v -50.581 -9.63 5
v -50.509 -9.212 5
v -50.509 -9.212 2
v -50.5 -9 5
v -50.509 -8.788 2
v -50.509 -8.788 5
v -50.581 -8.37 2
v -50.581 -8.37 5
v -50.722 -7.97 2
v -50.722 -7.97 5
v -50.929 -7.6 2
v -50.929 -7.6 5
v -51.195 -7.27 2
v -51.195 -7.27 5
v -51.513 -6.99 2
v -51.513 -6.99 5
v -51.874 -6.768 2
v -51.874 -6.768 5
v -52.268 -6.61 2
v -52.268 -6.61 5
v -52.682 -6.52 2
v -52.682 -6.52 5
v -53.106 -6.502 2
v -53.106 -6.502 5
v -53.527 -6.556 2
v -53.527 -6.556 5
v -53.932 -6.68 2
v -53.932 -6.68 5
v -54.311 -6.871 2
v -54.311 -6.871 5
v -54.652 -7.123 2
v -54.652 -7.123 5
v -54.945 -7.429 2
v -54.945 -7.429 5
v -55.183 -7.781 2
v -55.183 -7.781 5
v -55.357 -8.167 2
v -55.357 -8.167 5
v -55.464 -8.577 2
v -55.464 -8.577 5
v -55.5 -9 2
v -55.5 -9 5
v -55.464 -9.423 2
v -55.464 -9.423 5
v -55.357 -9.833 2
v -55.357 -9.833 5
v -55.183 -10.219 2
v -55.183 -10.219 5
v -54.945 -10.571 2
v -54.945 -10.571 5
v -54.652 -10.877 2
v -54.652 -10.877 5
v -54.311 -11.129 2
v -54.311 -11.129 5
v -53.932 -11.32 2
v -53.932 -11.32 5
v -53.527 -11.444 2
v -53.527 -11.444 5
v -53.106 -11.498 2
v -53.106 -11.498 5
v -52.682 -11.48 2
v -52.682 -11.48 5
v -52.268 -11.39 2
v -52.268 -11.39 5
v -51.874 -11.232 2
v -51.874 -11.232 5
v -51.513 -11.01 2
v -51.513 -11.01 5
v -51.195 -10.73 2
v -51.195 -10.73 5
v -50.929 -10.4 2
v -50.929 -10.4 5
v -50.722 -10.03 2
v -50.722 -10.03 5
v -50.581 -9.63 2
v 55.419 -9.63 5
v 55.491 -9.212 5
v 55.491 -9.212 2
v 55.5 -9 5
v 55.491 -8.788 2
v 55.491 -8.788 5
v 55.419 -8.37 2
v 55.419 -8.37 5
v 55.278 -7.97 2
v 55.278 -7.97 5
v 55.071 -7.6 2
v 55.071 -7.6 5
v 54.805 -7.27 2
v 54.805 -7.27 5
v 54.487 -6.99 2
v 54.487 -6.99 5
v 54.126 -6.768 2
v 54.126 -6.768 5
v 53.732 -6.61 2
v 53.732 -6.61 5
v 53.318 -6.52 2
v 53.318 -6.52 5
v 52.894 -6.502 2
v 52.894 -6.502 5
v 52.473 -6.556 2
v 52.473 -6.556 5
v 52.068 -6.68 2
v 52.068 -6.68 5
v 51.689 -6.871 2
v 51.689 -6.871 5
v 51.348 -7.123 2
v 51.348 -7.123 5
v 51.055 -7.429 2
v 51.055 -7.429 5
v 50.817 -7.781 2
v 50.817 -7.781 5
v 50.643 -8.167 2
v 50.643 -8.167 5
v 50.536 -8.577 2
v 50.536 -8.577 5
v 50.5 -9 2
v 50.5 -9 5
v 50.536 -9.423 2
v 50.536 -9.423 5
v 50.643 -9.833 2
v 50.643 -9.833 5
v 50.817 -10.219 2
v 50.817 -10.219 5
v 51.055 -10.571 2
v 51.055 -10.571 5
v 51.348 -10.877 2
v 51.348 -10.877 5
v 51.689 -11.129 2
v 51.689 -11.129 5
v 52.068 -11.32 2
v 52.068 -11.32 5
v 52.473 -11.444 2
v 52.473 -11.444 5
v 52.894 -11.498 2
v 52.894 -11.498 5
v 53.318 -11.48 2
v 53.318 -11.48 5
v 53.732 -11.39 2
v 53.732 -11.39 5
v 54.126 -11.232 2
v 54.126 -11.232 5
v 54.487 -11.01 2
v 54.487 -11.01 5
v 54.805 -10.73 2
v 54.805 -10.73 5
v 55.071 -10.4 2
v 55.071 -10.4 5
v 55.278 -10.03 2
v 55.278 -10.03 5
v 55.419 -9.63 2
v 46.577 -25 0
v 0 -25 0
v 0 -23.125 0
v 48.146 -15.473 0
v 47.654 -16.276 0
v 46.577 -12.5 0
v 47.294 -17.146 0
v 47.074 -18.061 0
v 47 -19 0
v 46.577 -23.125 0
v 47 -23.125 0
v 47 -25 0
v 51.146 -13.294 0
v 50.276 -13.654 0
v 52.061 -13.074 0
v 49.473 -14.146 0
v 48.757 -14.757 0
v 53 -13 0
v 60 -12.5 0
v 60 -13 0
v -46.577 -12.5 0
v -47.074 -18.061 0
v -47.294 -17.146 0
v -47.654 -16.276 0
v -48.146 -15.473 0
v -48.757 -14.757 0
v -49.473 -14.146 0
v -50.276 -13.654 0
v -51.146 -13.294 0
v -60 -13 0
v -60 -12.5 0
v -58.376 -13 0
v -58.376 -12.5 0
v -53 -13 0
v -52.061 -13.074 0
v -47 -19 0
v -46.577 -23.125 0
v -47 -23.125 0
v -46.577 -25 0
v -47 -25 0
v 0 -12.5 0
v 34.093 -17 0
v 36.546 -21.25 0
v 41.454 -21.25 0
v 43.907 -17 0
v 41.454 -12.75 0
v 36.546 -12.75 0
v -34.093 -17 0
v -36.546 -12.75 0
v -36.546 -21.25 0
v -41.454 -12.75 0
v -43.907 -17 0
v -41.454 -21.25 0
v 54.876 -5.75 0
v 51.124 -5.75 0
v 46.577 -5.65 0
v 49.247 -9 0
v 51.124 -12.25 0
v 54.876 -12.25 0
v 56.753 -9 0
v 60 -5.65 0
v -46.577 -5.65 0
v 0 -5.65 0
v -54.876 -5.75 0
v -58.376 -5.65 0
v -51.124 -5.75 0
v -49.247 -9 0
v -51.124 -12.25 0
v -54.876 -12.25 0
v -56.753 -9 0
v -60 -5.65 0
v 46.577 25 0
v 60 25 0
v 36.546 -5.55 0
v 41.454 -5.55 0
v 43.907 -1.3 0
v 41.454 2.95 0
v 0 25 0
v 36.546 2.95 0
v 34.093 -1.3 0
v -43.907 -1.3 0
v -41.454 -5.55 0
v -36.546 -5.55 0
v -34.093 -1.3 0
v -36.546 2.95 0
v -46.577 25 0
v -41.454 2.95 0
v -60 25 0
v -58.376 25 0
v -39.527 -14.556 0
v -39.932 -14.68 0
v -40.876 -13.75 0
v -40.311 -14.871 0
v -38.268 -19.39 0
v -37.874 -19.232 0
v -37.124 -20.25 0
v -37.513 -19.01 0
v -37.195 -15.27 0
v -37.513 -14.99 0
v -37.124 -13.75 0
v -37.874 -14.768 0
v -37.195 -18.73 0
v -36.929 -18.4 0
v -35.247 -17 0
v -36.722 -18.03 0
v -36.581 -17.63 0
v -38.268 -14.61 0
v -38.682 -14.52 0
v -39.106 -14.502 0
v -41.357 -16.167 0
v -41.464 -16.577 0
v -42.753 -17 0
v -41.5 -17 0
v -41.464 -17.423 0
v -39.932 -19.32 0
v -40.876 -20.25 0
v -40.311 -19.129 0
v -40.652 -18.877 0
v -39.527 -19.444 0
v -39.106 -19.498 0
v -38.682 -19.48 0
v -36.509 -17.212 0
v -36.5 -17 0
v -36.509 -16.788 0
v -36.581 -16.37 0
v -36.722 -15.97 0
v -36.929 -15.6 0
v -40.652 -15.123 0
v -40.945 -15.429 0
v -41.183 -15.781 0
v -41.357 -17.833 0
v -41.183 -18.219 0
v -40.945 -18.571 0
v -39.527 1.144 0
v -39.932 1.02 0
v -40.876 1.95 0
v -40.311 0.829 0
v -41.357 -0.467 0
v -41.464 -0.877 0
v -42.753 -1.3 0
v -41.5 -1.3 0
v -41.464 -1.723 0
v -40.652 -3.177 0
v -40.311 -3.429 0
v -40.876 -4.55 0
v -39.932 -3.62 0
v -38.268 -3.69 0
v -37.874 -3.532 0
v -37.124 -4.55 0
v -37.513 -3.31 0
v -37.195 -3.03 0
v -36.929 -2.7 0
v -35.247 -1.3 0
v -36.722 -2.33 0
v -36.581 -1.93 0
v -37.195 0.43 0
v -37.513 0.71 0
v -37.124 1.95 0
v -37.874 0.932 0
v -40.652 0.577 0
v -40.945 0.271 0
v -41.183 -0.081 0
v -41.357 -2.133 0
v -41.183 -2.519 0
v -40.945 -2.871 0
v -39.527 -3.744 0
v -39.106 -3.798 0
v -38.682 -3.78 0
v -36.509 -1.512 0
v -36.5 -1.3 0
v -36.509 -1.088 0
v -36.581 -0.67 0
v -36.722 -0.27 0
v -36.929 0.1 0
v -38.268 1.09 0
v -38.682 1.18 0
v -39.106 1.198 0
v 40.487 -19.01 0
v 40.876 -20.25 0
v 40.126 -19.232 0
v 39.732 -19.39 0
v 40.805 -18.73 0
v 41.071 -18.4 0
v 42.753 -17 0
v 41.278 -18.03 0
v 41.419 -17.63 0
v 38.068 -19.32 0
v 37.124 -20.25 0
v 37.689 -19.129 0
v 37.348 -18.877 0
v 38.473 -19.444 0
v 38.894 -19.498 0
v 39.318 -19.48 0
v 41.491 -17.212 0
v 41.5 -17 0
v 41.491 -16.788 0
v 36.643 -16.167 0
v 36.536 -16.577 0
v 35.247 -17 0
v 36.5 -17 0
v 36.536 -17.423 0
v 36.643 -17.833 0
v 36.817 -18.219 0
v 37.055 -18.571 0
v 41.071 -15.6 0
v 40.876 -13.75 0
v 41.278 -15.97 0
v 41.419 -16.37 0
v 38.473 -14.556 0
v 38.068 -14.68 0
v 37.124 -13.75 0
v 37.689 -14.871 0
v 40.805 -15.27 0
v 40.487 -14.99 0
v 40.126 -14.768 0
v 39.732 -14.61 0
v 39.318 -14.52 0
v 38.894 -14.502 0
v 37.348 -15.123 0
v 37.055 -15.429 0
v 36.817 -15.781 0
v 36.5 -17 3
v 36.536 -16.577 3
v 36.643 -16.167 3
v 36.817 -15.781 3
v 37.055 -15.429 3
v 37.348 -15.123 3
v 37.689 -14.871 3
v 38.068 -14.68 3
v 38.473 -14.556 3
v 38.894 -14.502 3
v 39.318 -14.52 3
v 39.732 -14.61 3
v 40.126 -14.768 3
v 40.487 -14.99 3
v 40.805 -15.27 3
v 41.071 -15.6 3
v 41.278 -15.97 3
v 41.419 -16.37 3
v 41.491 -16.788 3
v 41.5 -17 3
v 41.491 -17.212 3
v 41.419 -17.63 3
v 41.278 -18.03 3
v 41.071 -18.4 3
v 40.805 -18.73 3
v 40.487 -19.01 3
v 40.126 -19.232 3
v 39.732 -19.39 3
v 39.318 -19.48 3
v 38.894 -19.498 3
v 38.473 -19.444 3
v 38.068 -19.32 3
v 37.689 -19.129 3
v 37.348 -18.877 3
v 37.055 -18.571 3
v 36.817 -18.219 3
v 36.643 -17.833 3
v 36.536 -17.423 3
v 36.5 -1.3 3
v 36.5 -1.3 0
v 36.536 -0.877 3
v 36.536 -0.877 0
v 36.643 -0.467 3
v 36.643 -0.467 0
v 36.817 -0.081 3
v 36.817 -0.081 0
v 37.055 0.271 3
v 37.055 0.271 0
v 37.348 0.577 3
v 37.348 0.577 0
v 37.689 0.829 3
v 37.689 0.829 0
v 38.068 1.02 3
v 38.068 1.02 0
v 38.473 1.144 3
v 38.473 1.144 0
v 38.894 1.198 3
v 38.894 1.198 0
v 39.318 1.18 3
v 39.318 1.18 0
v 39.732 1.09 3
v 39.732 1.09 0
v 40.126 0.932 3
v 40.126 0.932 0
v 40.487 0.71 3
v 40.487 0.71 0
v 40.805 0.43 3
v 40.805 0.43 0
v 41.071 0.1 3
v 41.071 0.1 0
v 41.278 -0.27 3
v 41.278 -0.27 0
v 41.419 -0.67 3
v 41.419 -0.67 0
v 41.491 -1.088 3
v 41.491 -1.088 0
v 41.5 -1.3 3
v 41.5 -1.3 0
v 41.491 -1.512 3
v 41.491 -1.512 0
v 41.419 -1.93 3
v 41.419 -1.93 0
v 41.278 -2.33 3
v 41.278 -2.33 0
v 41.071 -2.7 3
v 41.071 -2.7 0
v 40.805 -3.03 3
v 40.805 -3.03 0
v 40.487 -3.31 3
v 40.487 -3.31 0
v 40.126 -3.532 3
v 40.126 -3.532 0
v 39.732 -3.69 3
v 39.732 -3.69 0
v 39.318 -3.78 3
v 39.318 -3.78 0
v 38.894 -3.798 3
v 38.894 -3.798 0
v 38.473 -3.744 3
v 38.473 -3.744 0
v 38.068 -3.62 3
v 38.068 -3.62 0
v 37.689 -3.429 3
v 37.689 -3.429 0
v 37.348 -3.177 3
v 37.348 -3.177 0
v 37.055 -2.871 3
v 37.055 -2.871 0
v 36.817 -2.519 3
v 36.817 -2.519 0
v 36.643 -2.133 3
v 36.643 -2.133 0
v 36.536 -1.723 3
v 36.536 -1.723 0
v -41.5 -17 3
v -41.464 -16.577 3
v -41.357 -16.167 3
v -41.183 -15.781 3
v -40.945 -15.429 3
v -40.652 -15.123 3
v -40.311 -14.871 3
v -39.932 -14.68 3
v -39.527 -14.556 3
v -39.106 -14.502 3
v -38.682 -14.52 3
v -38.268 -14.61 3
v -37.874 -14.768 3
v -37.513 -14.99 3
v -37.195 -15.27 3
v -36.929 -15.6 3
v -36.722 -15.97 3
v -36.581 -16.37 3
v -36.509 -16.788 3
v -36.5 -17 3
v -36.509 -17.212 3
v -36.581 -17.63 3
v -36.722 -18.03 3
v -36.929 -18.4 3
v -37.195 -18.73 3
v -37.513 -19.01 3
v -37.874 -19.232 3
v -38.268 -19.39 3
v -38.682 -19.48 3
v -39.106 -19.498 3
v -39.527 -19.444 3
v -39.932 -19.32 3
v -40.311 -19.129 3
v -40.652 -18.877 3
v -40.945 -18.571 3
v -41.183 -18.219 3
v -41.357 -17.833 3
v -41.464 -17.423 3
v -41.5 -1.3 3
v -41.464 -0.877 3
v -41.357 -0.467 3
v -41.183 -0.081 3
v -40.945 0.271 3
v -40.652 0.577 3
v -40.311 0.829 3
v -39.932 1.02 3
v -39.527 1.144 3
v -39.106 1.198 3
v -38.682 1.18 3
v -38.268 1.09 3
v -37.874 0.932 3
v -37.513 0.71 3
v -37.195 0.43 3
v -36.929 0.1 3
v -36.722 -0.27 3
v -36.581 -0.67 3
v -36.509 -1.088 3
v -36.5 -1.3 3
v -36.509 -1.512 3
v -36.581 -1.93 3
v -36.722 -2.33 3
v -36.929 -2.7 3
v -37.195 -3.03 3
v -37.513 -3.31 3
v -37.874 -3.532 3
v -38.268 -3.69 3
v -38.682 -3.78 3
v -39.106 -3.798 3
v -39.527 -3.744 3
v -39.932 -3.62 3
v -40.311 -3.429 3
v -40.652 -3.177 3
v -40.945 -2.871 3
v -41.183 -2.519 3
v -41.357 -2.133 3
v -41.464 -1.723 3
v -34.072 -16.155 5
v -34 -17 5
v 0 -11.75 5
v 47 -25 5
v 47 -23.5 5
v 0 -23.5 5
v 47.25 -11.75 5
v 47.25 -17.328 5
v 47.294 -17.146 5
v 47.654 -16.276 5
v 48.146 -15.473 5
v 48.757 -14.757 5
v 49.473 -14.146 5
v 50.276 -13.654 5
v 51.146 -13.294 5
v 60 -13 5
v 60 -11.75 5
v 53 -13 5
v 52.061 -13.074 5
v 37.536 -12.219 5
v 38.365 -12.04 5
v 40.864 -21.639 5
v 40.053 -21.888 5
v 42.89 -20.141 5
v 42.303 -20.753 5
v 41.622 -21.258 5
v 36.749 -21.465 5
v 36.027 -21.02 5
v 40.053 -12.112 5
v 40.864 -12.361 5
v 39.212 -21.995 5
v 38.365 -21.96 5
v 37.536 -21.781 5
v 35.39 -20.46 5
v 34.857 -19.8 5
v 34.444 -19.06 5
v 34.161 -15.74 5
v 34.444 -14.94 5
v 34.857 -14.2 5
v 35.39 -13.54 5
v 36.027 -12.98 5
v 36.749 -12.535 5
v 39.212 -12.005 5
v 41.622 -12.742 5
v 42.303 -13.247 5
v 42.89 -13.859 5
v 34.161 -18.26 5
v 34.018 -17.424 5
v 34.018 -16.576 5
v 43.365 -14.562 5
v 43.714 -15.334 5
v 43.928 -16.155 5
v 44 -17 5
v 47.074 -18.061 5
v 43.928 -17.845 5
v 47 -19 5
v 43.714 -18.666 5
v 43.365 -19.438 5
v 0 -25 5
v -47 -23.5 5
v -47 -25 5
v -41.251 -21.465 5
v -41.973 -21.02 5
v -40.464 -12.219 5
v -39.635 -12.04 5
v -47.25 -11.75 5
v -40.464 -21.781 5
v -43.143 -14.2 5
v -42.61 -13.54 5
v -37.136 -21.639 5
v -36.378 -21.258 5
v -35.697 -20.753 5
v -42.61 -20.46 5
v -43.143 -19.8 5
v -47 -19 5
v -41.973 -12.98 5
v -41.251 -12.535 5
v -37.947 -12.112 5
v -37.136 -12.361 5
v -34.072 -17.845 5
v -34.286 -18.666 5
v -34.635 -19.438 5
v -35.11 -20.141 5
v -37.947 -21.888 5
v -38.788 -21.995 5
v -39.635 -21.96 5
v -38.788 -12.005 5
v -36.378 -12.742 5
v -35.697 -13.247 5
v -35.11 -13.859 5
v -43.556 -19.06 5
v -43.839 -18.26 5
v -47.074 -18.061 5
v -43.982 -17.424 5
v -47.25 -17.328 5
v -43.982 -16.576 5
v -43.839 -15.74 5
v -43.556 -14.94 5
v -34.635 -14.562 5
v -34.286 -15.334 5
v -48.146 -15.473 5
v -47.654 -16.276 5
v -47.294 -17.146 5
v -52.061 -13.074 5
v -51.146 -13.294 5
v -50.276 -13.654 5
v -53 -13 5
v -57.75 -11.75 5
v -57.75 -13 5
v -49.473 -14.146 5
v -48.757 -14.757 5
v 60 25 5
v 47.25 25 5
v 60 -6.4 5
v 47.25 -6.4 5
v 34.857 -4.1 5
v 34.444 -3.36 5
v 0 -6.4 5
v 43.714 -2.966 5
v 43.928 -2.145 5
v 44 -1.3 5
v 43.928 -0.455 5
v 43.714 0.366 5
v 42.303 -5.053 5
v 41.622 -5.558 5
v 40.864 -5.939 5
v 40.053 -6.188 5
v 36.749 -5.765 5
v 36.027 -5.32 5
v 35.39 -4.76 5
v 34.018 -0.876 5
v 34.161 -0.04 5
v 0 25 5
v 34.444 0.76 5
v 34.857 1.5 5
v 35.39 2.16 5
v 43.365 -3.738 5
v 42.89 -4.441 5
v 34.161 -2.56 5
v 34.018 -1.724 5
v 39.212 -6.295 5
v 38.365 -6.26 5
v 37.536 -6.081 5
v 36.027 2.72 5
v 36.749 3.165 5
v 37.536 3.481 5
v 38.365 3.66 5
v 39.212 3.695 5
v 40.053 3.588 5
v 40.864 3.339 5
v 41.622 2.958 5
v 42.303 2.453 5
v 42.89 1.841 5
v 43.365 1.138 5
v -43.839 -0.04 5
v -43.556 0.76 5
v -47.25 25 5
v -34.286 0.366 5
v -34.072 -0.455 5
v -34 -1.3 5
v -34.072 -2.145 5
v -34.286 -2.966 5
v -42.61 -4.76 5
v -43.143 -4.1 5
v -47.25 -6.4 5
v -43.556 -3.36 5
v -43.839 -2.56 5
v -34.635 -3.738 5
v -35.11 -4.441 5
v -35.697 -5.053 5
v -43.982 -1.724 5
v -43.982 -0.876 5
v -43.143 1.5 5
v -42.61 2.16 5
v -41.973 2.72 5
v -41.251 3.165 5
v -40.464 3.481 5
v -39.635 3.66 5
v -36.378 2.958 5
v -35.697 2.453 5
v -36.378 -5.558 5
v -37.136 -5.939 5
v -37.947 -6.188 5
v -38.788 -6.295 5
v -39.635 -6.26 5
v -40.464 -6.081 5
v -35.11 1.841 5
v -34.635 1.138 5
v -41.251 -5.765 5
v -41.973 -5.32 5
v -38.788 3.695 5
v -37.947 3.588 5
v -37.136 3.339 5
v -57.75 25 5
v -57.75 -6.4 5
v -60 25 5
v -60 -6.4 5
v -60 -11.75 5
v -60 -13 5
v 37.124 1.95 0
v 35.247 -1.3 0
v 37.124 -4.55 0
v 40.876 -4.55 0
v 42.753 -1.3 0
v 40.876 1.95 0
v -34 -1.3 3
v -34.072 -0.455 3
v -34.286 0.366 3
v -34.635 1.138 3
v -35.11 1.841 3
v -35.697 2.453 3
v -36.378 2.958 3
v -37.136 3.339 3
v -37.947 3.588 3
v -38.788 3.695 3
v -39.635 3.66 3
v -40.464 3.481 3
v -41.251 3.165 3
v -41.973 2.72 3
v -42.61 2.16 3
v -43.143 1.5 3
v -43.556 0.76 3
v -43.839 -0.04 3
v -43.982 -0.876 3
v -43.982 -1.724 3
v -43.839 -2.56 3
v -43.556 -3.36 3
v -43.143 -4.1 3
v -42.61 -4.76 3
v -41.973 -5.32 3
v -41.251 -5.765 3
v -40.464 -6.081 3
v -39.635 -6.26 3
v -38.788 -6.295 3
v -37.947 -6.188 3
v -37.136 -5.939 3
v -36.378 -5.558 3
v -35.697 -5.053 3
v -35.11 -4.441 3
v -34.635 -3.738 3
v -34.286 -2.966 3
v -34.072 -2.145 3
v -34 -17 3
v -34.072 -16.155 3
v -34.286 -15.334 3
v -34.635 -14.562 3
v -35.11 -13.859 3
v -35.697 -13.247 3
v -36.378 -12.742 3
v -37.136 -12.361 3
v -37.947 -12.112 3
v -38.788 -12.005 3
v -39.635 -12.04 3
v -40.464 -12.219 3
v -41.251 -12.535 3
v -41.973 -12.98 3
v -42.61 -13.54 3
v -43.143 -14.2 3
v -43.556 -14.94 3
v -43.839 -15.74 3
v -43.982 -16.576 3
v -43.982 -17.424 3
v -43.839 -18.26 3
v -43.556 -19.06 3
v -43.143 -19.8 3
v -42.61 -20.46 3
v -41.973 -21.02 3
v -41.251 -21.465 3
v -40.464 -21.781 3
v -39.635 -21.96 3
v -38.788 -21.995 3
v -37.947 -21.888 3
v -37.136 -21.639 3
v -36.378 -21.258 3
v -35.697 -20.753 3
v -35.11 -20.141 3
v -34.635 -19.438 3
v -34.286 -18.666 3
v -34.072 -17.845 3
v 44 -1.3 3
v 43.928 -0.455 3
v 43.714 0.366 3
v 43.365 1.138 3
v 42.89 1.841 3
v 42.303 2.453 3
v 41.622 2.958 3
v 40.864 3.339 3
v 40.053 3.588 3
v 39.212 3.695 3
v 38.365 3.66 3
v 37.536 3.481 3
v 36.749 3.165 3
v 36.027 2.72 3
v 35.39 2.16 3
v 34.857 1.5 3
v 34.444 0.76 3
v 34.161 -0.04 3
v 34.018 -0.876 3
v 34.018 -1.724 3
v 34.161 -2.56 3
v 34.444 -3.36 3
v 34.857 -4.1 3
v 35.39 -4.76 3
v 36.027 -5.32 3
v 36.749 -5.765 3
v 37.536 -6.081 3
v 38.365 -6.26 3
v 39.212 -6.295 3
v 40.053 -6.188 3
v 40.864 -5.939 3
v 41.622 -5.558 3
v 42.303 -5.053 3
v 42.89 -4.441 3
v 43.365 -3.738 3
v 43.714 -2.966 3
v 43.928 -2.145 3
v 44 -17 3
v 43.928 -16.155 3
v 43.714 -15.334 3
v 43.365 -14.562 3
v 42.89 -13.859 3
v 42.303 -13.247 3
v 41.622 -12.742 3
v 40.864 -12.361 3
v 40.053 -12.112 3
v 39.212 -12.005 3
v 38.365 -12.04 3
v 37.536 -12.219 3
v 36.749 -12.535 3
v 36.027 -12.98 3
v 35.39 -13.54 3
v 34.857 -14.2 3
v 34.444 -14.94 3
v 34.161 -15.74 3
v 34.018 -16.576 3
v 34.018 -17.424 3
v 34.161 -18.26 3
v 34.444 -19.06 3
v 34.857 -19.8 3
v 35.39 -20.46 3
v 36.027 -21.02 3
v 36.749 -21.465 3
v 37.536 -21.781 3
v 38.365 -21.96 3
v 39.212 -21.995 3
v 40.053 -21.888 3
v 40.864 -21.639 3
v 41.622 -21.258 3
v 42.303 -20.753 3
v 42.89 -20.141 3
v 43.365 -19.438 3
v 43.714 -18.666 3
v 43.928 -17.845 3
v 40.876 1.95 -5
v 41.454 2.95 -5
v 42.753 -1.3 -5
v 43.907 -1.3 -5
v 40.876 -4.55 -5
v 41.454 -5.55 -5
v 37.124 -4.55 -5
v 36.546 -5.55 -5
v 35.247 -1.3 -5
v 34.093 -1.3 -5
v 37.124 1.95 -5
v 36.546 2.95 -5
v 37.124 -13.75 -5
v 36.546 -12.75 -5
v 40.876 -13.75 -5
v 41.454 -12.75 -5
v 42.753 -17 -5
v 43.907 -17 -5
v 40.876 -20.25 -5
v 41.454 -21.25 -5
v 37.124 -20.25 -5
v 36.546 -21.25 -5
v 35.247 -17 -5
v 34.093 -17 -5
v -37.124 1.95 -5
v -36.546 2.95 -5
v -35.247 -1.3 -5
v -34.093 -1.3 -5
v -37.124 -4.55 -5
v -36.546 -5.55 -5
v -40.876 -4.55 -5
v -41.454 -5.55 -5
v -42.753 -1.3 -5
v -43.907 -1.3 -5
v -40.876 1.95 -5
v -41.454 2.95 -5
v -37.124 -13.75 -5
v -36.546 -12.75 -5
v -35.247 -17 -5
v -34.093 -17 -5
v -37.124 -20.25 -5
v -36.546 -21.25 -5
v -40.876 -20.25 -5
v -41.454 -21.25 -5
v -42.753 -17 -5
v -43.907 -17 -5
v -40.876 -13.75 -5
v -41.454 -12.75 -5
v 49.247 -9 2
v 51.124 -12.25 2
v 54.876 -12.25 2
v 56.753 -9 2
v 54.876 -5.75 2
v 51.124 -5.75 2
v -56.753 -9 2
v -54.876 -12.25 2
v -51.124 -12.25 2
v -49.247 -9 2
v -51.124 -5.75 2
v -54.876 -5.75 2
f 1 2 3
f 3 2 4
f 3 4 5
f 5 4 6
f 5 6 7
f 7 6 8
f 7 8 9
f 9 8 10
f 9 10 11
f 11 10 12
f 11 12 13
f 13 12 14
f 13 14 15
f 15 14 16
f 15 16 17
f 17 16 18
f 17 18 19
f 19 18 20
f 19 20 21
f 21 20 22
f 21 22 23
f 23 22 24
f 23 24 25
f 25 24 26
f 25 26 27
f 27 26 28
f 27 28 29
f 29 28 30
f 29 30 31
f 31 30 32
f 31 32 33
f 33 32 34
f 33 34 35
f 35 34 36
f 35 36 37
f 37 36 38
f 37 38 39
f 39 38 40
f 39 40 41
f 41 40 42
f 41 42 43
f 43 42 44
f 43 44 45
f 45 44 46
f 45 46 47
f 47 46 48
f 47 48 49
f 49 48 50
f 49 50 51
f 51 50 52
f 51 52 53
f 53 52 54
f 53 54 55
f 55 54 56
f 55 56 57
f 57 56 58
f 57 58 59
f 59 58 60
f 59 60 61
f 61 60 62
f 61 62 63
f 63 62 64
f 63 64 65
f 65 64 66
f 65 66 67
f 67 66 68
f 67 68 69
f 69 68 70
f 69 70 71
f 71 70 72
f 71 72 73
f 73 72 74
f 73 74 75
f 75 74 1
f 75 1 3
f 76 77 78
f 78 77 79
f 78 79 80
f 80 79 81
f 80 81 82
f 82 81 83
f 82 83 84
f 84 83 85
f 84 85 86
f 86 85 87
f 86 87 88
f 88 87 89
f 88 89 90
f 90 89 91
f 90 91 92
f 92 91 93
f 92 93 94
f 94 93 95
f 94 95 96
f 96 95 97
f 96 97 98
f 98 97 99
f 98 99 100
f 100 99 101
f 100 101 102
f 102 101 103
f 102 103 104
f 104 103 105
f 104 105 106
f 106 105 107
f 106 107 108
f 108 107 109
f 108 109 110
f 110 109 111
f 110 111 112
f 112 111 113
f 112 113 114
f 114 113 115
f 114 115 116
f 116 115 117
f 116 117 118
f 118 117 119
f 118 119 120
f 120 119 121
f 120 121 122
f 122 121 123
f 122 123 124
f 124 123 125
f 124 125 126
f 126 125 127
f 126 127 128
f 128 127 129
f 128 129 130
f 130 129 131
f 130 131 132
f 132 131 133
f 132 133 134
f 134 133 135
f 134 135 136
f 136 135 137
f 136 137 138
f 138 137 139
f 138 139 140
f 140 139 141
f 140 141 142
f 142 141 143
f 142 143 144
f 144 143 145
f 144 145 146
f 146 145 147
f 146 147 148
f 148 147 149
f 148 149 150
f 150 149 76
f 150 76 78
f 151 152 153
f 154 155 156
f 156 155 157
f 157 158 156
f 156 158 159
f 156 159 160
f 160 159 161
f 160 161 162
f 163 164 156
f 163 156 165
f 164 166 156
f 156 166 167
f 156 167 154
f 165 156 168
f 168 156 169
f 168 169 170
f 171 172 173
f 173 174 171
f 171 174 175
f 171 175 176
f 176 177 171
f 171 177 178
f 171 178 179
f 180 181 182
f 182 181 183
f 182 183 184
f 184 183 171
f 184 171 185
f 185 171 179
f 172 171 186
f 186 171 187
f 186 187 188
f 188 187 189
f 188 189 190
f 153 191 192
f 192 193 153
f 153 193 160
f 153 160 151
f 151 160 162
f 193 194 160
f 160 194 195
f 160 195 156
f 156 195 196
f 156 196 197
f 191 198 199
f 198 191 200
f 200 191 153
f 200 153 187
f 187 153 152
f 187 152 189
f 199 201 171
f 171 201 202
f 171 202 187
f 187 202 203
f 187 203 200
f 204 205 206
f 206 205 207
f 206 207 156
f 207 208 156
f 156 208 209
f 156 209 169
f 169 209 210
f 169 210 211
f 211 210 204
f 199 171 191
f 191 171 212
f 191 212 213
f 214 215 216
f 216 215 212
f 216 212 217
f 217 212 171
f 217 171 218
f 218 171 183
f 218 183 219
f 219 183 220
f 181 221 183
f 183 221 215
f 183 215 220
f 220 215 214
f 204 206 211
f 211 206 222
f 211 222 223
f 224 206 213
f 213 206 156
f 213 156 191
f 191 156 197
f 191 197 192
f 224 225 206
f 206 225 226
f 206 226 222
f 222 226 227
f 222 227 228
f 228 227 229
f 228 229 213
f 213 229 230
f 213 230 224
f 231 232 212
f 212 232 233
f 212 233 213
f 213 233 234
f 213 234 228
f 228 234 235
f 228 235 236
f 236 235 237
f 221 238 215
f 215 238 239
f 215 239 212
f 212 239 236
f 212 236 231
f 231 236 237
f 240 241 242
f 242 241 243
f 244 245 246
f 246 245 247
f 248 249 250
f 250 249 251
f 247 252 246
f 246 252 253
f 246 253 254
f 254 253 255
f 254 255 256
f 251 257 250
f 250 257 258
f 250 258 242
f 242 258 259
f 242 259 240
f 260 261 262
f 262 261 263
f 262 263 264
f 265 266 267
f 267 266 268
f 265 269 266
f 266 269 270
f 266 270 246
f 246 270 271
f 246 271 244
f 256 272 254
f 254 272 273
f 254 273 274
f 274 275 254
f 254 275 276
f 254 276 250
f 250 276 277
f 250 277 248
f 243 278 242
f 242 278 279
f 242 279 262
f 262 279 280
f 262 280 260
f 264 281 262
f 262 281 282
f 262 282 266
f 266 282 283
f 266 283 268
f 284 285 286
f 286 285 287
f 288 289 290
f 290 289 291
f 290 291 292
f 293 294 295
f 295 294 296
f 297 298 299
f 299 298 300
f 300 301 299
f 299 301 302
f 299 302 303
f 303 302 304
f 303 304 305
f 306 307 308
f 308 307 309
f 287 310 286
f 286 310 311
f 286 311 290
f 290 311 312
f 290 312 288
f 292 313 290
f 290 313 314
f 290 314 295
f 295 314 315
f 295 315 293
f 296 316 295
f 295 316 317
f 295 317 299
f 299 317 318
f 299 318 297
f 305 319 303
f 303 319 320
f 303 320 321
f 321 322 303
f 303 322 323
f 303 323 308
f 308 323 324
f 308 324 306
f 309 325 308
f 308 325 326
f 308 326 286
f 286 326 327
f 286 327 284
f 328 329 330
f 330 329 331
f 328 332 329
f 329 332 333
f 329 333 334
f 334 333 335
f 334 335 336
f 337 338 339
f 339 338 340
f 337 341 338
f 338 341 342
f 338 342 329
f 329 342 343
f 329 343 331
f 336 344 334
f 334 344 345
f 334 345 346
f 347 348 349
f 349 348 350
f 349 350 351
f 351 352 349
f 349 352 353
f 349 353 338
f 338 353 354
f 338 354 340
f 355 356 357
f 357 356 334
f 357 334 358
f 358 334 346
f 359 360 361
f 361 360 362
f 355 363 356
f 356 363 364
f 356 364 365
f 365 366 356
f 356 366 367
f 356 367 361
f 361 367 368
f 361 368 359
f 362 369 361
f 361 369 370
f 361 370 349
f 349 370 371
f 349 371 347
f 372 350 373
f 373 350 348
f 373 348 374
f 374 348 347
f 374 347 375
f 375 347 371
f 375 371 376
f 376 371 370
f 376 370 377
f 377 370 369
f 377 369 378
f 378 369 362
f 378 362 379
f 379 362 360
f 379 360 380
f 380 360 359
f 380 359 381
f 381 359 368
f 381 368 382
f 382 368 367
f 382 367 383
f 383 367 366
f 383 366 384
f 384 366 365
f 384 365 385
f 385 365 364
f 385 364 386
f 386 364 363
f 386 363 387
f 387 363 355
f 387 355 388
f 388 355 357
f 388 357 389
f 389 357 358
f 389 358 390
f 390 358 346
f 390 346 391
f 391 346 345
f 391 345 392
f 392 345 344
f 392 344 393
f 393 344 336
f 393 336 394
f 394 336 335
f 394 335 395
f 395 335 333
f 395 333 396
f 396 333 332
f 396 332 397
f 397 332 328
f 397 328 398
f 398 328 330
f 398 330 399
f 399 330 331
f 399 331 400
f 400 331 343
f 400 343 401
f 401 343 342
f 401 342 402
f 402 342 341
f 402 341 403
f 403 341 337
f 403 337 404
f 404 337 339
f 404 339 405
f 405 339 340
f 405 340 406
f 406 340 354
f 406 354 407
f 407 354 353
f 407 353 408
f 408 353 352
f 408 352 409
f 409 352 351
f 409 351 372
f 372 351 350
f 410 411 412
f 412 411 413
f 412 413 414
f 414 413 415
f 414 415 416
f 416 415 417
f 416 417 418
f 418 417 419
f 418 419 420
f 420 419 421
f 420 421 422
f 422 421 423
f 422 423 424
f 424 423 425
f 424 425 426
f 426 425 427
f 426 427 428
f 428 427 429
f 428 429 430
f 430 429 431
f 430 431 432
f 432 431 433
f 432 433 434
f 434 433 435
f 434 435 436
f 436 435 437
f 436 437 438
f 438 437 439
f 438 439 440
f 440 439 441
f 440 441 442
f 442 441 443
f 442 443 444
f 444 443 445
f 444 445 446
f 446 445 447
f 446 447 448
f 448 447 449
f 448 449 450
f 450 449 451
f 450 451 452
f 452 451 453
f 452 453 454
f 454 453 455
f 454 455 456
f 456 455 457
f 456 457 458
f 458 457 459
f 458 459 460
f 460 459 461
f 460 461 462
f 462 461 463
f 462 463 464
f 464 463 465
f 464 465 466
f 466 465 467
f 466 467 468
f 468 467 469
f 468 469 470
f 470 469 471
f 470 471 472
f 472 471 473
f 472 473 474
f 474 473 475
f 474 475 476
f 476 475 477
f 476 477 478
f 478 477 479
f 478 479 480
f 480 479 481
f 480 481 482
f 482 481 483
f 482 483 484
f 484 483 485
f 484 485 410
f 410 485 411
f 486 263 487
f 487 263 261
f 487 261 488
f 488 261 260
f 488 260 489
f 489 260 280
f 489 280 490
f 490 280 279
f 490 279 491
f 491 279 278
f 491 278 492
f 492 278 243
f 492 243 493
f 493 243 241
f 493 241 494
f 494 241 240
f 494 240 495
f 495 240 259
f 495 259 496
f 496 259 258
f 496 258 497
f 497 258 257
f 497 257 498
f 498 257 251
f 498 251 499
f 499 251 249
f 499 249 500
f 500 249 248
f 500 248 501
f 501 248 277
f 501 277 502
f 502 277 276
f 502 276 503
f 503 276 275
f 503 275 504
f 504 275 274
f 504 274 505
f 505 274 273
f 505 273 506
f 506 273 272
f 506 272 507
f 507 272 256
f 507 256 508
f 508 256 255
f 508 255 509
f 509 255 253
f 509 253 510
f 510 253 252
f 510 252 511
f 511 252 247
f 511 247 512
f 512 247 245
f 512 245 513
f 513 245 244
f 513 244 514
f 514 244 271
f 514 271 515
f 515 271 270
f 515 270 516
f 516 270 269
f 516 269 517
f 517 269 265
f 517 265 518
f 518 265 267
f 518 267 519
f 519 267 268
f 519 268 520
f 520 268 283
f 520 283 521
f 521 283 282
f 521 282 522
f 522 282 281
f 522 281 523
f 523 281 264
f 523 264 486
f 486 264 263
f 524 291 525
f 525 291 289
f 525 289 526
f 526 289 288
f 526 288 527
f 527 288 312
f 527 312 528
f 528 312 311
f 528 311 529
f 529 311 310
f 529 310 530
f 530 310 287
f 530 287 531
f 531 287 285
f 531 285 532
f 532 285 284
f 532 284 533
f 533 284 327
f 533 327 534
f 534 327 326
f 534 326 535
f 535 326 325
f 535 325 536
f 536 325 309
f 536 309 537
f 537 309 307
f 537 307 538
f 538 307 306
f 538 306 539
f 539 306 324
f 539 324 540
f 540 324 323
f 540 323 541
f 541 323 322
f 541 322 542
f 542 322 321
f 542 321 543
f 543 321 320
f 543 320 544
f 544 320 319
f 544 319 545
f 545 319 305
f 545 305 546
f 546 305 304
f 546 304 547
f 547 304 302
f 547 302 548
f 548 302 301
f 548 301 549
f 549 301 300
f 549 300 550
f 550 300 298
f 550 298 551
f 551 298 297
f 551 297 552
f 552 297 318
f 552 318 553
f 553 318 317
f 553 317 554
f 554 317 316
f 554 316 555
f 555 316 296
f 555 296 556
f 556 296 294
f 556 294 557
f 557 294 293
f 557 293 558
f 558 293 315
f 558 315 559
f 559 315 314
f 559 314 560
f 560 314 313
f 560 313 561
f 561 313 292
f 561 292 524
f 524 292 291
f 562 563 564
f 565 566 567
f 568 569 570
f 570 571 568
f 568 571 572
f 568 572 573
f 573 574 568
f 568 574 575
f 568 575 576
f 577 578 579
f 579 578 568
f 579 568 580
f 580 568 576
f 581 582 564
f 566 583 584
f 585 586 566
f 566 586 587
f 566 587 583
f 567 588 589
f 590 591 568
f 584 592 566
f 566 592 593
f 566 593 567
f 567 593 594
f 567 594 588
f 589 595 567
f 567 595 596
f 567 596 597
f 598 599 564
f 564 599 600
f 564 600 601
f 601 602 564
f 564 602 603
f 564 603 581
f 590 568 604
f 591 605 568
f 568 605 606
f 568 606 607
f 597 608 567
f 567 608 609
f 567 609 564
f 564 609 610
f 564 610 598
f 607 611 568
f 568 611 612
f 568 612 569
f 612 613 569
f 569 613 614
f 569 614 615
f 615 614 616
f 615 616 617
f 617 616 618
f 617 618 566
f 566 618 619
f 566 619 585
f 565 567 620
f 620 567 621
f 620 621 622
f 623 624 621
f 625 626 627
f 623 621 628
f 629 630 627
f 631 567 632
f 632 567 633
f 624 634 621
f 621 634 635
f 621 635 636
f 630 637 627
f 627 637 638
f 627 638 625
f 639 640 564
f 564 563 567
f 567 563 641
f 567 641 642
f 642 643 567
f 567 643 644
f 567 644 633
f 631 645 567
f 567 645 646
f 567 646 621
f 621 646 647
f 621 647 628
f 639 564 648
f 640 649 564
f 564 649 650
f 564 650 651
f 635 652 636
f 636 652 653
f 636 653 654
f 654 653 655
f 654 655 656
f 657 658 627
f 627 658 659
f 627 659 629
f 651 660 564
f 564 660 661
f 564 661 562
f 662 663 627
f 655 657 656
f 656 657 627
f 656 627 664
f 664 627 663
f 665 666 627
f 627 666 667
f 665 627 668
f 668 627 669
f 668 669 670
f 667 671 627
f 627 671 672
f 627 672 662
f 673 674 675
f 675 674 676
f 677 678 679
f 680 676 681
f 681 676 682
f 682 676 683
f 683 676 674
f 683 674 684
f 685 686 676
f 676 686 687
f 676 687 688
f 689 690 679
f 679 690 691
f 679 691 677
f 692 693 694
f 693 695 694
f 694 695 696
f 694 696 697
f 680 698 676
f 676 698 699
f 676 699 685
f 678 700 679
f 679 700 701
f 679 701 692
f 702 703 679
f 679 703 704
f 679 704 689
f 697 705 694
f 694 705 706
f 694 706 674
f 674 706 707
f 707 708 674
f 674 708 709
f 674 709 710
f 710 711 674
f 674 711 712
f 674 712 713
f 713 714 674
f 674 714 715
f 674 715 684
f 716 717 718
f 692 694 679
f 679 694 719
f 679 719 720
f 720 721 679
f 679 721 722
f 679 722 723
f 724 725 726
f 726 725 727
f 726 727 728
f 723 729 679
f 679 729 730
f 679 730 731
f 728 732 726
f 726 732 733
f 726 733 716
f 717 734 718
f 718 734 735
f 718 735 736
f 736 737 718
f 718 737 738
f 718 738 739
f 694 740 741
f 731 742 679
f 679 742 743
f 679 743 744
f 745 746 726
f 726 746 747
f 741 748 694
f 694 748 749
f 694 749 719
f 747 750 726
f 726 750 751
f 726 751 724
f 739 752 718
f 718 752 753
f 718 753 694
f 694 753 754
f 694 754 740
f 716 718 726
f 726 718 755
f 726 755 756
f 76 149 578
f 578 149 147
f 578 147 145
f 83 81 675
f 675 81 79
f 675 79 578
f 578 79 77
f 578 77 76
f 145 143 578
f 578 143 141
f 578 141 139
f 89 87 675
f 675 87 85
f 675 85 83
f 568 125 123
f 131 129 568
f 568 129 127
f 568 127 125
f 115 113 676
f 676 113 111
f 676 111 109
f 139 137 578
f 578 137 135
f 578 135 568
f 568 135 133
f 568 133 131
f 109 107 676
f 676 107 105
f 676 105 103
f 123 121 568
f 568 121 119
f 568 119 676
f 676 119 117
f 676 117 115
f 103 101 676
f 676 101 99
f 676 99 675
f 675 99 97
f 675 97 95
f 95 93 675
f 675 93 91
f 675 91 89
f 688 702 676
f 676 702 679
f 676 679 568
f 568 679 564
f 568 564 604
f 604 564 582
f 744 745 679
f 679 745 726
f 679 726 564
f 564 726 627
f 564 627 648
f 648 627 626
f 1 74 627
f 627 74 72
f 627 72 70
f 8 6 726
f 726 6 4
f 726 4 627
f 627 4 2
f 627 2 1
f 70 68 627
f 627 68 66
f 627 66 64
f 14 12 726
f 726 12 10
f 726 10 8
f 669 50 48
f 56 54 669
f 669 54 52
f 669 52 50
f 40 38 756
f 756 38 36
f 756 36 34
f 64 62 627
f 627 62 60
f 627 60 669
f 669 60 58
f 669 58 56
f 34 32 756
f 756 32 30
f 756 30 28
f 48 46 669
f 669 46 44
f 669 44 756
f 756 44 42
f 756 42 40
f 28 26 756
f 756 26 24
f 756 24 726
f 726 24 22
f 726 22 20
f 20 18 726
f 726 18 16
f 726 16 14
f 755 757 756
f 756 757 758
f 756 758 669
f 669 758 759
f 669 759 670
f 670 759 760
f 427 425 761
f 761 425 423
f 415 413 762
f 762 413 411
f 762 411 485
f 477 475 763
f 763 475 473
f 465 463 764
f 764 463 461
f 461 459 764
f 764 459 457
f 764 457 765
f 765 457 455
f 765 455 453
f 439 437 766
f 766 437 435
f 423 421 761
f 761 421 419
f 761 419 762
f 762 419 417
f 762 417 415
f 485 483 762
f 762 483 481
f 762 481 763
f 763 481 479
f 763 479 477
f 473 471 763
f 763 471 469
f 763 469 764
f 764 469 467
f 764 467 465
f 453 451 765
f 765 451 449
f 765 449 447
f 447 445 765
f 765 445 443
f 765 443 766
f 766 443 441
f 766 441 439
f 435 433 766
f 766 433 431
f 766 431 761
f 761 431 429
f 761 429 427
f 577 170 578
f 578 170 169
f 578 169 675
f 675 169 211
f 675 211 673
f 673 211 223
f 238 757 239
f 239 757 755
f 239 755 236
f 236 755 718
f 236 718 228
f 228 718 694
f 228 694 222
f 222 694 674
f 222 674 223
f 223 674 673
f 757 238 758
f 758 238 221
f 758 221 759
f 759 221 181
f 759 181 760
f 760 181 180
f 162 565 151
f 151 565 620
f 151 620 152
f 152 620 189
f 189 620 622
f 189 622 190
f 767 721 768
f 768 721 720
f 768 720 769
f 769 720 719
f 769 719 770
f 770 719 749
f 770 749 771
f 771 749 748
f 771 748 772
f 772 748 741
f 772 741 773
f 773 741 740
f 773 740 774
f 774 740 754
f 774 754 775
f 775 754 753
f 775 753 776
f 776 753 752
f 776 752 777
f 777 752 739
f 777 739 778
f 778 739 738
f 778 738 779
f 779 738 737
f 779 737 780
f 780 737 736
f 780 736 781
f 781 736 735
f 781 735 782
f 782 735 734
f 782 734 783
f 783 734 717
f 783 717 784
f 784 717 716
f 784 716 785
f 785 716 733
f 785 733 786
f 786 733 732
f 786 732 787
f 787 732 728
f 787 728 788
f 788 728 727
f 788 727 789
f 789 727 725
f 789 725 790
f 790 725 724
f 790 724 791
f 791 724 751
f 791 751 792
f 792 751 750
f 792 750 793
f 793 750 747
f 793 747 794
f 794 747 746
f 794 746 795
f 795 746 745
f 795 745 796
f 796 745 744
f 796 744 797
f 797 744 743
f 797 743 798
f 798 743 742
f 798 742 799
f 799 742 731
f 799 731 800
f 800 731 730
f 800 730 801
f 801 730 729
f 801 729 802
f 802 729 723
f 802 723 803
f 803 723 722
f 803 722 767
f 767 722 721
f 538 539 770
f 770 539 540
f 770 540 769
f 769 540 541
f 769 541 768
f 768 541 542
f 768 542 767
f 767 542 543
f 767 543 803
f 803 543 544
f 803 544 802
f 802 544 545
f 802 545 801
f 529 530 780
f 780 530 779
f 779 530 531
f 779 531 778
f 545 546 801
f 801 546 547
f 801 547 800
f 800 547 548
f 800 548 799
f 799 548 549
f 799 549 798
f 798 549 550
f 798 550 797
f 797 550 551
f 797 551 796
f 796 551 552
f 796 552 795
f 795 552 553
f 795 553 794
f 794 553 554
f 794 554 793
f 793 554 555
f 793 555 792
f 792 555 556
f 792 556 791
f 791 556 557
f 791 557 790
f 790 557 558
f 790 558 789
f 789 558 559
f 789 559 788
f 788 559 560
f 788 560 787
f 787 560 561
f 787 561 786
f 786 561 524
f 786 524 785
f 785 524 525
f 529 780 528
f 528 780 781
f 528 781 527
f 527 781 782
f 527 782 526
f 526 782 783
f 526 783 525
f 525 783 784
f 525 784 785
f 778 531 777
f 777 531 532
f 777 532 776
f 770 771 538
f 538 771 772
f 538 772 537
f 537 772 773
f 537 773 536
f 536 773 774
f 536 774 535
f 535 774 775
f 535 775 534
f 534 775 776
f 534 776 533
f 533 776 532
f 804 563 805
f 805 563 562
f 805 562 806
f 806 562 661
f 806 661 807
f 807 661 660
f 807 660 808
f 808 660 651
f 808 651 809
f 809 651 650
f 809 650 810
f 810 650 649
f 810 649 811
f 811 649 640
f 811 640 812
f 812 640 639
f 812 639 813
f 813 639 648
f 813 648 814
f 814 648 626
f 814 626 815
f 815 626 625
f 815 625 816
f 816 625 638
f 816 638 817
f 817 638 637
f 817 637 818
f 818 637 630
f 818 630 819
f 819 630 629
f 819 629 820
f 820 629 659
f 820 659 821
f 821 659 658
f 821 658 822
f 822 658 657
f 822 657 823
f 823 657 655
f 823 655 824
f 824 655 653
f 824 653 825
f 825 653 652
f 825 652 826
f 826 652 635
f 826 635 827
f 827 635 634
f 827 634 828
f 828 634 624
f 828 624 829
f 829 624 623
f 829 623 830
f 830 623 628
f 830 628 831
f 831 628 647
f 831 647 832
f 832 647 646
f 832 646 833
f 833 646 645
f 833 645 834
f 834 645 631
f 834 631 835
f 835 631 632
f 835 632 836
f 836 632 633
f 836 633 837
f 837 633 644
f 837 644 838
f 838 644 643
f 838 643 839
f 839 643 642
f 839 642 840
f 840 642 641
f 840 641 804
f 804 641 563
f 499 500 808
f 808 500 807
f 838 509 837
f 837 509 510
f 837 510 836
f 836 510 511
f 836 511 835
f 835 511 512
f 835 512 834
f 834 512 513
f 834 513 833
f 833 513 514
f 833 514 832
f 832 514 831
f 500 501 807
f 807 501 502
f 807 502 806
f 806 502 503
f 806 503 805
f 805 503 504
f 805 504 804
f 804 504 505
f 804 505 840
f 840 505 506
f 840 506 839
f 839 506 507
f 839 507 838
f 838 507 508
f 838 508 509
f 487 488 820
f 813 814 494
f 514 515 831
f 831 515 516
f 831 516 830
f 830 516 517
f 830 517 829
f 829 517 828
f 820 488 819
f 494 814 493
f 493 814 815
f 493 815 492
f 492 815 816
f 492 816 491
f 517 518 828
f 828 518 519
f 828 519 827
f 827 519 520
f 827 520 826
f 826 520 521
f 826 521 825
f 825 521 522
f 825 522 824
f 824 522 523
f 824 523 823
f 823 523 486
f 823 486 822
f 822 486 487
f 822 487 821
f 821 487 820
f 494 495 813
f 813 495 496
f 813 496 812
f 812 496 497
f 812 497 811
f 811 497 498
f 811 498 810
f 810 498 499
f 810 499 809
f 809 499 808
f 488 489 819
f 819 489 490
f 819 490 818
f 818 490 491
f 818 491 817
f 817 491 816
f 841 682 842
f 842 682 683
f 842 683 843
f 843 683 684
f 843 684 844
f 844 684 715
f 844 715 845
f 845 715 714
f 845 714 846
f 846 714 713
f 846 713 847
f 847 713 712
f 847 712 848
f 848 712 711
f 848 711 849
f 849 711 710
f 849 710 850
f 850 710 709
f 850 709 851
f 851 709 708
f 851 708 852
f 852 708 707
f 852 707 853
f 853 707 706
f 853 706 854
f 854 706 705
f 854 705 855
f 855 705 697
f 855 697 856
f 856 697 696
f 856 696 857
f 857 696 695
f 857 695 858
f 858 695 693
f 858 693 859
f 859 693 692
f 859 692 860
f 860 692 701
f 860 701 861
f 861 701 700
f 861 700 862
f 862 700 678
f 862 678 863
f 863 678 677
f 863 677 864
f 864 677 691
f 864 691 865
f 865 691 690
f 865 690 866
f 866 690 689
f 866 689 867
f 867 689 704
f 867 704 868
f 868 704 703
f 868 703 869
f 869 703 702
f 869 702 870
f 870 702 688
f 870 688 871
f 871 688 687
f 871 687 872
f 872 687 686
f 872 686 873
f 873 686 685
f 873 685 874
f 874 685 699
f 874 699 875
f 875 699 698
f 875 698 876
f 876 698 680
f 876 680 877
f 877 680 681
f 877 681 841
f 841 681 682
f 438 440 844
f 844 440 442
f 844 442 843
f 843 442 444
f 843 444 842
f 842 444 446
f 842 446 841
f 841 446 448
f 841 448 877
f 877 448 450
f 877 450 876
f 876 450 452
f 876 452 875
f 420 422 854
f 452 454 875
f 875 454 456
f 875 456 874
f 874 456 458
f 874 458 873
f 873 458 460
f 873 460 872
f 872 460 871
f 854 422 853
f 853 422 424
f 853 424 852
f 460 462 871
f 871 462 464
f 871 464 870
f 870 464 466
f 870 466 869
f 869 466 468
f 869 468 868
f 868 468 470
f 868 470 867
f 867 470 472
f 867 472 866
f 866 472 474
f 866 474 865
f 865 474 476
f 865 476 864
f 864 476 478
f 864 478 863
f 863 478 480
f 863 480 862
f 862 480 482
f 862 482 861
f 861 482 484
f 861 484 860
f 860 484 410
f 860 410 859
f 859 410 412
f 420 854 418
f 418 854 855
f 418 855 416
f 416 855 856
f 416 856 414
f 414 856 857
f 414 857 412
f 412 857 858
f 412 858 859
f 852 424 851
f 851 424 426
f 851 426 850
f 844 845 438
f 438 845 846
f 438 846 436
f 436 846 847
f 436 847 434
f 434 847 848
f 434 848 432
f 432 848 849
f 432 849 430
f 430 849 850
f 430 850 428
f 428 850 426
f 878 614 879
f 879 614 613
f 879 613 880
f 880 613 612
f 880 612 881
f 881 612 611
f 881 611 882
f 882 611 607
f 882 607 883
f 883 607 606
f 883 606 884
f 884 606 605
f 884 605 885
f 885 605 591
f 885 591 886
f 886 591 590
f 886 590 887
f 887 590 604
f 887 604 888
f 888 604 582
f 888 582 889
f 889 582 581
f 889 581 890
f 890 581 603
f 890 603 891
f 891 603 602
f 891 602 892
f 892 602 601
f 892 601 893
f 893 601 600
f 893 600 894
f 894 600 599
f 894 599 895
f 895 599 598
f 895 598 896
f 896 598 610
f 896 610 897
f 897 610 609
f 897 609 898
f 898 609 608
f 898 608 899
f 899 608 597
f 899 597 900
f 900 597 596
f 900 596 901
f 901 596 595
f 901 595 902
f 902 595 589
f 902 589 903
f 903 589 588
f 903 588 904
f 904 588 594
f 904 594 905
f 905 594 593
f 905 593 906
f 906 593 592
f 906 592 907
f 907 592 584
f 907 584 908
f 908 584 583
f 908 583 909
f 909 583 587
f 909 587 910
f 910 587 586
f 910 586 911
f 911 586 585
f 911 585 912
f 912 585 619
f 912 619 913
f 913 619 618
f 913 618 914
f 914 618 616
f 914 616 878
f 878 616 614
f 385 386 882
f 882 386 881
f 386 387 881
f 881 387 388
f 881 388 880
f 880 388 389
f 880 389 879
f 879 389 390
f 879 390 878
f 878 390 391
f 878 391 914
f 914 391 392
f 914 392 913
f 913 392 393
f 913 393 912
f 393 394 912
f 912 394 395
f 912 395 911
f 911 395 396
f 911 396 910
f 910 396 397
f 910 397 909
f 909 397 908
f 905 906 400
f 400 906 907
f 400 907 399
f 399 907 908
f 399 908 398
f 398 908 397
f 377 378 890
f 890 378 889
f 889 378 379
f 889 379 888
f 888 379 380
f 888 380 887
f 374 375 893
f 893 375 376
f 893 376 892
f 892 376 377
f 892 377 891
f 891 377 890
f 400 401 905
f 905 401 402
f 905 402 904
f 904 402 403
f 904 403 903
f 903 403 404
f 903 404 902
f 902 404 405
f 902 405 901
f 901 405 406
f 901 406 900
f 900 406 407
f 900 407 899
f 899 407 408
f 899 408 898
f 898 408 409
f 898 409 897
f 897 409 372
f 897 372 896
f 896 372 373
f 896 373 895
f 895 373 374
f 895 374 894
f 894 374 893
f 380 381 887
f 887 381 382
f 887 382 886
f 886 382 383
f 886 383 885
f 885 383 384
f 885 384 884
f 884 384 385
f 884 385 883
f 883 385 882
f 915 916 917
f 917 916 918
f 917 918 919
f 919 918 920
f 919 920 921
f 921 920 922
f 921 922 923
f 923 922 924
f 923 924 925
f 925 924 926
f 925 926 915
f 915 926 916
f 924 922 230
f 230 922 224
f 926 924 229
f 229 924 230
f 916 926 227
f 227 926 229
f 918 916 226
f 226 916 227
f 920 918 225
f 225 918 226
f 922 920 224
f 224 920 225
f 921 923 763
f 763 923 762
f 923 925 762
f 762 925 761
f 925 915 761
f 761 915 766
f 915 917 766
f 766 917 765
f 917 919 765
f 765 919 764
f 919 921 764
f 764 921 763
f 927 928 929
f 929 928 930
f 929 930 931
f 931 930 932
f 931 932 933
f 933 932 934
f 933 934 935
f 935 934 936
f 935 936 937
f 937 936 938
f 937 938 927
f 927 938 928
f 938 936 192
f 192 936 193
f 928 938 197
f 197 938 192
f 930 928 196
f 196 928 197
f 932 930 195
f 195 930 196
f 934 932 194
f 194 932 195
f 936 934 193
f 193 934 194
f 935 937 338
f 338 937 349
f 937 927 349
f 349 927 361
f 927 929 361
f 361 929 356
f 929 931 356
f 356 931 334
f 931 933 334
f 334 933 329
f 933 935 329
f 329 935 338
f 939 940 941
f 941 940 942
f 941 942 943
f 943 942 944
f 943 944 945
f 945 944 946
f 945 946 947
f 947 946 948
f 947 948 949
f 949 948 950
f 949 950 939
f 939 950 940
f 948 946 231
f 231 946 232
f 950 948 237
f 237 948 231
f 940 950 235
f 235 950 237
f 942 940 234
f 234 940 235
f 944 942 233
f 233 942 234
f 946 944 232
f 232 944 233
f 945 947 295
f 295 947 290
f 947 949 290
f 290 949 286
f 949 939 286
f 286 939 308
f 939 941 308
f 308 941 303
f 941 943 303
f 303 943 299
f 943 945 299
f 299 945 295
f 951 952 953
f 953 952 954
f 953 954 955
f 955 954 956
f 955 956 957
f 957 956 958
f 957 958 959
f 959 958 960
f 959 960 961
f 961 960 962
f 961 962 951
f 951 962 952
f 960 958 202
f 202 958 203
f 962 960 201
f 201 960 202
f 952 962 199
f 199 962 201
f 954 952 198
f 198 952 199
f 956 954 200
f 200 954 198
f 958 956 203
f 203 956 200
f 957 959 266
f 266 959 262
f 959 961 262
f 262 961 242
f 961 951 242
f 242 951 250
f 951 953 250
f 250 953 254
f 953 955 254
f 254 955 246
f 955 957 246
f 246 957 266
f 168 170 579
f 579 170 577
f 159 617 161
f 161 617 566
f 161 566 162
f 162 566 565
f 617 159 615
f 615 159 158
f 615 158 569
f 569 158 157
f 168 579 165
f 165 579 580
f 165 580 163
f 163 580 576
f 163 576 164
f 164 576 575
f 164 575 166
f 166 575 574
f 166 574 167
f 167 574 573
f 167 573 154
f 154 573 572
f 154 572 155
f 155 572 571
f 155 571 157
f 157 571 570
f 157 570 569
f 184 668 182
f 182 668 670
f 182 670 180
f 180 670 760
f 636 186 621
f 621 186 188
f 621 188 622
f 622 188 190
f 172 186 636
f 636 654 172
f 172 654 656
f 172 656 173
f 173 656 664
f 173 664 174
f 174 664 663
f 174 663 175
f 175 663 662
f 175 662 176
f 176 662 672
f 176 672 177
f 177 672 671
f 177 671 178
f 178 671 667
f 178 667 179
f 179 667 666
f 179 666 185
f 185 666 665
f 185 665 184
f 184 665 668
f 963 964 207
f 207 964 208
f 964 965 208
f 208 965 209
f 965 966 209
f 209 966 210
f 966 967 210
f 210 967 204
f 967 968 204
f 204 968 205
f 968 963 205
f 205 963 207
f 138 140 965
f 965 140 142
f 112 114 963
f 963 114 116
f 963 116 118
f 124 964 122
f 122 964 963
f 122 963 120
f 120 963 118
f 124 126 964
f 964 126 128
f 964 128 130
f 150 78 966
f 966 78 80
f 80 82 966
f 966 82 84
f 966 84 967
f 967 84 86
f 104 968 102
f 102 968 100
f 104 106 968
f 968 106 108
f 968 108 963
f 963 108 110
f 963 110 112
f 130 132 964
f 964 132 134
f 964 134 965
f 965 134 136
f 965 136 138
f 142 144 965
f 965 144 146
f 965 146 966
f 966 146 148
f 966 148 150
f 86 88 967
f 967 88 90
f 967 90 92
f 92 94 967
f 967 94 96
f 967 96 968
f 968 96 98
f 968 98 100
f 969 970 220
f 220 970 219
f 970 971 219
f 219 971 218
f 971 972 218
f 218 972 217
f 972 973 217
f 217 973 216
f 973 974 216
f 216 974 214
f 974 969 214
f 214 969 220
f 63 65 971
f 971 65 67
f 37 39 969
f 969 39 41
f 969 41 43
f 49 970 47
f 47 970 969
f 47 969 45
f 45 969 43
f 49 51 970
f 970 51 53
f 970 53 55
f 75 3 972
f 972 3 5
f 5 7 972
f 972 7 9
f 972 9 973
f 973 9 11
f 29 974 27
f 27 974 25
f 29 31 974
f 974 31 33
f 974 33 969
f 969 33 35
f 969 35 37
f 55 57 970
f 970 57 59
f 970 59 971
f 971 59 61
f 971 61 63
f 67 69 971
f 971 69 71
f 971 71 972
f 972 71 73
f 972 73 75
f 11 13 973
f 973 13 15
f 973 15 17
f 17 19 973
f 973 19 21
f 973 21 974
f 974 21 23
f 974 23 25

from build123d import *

# Parameters (mm, degrees)
SKETCH_1_W          = 120
SKETCH_1_H          = 50
SKETCH_1_R          = 2.5
EXTRUDE_2_DEPTH     = 5
SKETCH_4_R          = 2.5
CUT_EXTRUDE_1_DEPTH = 66.192024052
SKETCH_7_R          = 5
CUT_EXTRUDE_4_DEPTH = 2
EXTRUDE_3_DEPTH     = 5
SKETCH_11_W         = 5
SKETCH_11_H         = 12
CUT_EXTRUDE_5_DEPTH = 13
FILLET_3_R          = 6
SKETCH_12_W         = 5
SKETCH_12_H         = 12
CUT_EXTRUDE_6_DEPTH = 13
FILLET_4_R          = 6
CUT_EXTRUDE_7_DEPTH = 2


with BuildPart() as part:
    # 草图1 → 凸台-拉伸2 (new body)
    with BuildSketch(Plane.XY):
        Rectangle(SKETCH_1_W, SKETCH_1_H)
        with Locations((-53, -9)):
            Circle(SKETCH_1_R, mode=Mode.SUBTRACT)
        with Locations((53, -9)):
            Circle(SKETCH_1_R, mode=Mode.SUBTRACT)
    extrude(amount=EXTRUDE_2_DEPTH)

    # 草图4 → 切除-拉伸1 (cut, through all)
    with BuildSketch(Plane.XY):
        with Locations((-39, -1.3)):
            Circle(SKETCH_4_R)
        with Locations((-39, -17)):
            Circle(SKETCH_4_R)
        with Locations((39, -1.3)):
            Circle(SKETCH_4_R)
        with Locations((39, -17)):
            Circle(SKETCH_4_R)
    extrude(amount=CUT_EXTRUDE_1_DEPTH, mode=Mode.SUBTRACT)

    # 草图7 → 切除-拉伸4 (cut)
    with BuildSketch(Plane.XY.offset(5)):
        with Locations((-39, -1.3)):
            Circle(SKETCH_7_R)
        with Locations((-39, -17)):
            Circle(SKETCH_7_R)
        with Locations((39, -1.3)):
            Circle(SKETCH_7_R)
        with Locations((39, -17)):
            Circle(SKETCH_7_R)
    extrude(amount=-CUT_EXTRUDE_4_DEPTH, mode=Mode.SUBTRACT)

    # 草图9 → 凸台-拉伸3 (add)
    # profile 1 of 4: a face of its own
    with BuildSketch(Plane(origin=(0, 0, 0), x_dir=(-1, 0, 0), z_dir=(0, 0, -1))):
        Polygon((-34.092522712, -1.3), (-36.546261356, 2.95), (-41.453738644, 2.95), (-43.907477288, -1.3), (-41.453738644, -5.55), (-36.546261356, -5.55), align=None)
        Polygon((-35.24722325, -1.3), (-37.123611625, 1.95), (-40.876388375, 1.95), (-42.75277675, -1.3), (-40.876388375, -4.55), (-37.123611625, -4.55), align=None, mode=Mode.SUBTRACT)
    # profile 2 of 4: a face of its own
    with BuildSketch(Plane(origin=(0, 0, 0), x_dir=(-1, 0, 0), z_dir=(0, 0, -1))):
        Polygon((-34.092522712, -17), (-36.546261356, -12.75), (-41.453738644, -12.75), (-43.907477288, -17), (-41.453738644, -21.25), (-36.546261356, -21.25), align=None)
        Polygon((-35.24722325, -17), (-37.123611625, -13.75), (-40.876388375, -13.75), (-42.75277675, -17), (-40.876388375, -20.25), (-37.123611625, -20.25), align=None, mode=Mode.SUBTRACT)
    # profile 3 of 4: a face of its own
    with BuildSketch(Plane(origin=(0, 0, 0), x_dir=(-1, 0, 0), z_dir=(0, 0, -1))):
        Polygon((43.907477288, -1.3), (41.453738644, 2.95), (36.546261356, 2.95), (34.092522712, -1.3), (36.546261356, -5.55), (41.453738644, -5.55), align=None)
        Polygon((42.75277675, -1.3), (40.876388375, 1.95), (37.123611625, 1.95), (35.24722325, -1.3), (37.123611625, -4.55), (40.876388375, -4.55), align=None, mode=Mode.SUBTRACT)
    # profile 4 of 4: a face of its own
    with BuildSketch(Plane(origin=(0, 0, 0), x_dir=(-1, 0, 0), z_dir=(0, 0, -1))):
        Polygon((43.907477288, -17), (41.453738644, -12.75), (36.546261356, -12.75), (34.092522712, -17), (36.546261356, -21.25), (41.453738644, -21.25), align=None)
        Polygon((42.75277675, -17), (40.876388375, -13.75), (37.123611625, -13.75), (35.24722325, -17), (37.123611625, -20.25), (40.876388375, -20.25), align=None, mode=Mode.SUBTRACT)
    extrude(amount=EXTRUDE_3_DEPTH)

    # 草图11 → 切除-拉伸5 (cut)
    with BuildSketch(Plane(origin=(60, 0, 0), x_dir=(0, 0, -1), z_dir=(1, 0, 0))):
        with Locations((-2.5, -19)):
            Rectangle(SKETCH_11_W, SKETCH_11_H)
    extrude(amount=-CUT_EXTRUDE_5_DEPTH, mode=Mode.SUBTRACT)

    # 圆角3
    fillet_3_edges = [part.edges().sort_by_distance(p)[0] for p in [
        (47, -13, 2.5),
    ]]
    fillet(fillet_3_edges, radius=FILLET_3_R)

    # 草图12 → 切除-拉伸6 (cut)
    with BuildSketch(Plane.ZY.offset(60)):
        with Locations((2.5, -19)):
            Rectangle(SKETCH_12_W, SKETCH_12_H)
    extrude(amount=-CUT_EXTRUDE_6_DEPTH, mode=Mode.SUBTRACT)

    # 圆角4
    fillet_4_edges = [part.edges().sort_by_distance(p)[0] for p in [
        (-47, -13, 2.5),
    ]]
    fillet(fillet_4_edges, radius=FILLET_4_R)

    # 草图13 → 切除-拉伸7 (cut)
    with BuildSketch(Plane(origin=(0, 0, 0), x_dir=(-1, 0, 0), z_dir=(0, 0, -1))):
        Polygon((-49.24722325, -9), (-51.123611625, -5.75), (-54.876388375, -5.75), (-56.75277675, -9), (-54.876388375, -12.25), (-51.123611625, -12.25), align=None)
        Polygon((56.75277675, -9), (54.876388375, -5.75), (51.123611625, -5.75), (49.24722325, -9), (51.123611625, -12.25), (54.876388375, -12.25), align=None)
    extrude(amount=-CUT_EXTRUDE_7_DEPTH, mode=Mode.SUBTRACT)


solid = part.part
